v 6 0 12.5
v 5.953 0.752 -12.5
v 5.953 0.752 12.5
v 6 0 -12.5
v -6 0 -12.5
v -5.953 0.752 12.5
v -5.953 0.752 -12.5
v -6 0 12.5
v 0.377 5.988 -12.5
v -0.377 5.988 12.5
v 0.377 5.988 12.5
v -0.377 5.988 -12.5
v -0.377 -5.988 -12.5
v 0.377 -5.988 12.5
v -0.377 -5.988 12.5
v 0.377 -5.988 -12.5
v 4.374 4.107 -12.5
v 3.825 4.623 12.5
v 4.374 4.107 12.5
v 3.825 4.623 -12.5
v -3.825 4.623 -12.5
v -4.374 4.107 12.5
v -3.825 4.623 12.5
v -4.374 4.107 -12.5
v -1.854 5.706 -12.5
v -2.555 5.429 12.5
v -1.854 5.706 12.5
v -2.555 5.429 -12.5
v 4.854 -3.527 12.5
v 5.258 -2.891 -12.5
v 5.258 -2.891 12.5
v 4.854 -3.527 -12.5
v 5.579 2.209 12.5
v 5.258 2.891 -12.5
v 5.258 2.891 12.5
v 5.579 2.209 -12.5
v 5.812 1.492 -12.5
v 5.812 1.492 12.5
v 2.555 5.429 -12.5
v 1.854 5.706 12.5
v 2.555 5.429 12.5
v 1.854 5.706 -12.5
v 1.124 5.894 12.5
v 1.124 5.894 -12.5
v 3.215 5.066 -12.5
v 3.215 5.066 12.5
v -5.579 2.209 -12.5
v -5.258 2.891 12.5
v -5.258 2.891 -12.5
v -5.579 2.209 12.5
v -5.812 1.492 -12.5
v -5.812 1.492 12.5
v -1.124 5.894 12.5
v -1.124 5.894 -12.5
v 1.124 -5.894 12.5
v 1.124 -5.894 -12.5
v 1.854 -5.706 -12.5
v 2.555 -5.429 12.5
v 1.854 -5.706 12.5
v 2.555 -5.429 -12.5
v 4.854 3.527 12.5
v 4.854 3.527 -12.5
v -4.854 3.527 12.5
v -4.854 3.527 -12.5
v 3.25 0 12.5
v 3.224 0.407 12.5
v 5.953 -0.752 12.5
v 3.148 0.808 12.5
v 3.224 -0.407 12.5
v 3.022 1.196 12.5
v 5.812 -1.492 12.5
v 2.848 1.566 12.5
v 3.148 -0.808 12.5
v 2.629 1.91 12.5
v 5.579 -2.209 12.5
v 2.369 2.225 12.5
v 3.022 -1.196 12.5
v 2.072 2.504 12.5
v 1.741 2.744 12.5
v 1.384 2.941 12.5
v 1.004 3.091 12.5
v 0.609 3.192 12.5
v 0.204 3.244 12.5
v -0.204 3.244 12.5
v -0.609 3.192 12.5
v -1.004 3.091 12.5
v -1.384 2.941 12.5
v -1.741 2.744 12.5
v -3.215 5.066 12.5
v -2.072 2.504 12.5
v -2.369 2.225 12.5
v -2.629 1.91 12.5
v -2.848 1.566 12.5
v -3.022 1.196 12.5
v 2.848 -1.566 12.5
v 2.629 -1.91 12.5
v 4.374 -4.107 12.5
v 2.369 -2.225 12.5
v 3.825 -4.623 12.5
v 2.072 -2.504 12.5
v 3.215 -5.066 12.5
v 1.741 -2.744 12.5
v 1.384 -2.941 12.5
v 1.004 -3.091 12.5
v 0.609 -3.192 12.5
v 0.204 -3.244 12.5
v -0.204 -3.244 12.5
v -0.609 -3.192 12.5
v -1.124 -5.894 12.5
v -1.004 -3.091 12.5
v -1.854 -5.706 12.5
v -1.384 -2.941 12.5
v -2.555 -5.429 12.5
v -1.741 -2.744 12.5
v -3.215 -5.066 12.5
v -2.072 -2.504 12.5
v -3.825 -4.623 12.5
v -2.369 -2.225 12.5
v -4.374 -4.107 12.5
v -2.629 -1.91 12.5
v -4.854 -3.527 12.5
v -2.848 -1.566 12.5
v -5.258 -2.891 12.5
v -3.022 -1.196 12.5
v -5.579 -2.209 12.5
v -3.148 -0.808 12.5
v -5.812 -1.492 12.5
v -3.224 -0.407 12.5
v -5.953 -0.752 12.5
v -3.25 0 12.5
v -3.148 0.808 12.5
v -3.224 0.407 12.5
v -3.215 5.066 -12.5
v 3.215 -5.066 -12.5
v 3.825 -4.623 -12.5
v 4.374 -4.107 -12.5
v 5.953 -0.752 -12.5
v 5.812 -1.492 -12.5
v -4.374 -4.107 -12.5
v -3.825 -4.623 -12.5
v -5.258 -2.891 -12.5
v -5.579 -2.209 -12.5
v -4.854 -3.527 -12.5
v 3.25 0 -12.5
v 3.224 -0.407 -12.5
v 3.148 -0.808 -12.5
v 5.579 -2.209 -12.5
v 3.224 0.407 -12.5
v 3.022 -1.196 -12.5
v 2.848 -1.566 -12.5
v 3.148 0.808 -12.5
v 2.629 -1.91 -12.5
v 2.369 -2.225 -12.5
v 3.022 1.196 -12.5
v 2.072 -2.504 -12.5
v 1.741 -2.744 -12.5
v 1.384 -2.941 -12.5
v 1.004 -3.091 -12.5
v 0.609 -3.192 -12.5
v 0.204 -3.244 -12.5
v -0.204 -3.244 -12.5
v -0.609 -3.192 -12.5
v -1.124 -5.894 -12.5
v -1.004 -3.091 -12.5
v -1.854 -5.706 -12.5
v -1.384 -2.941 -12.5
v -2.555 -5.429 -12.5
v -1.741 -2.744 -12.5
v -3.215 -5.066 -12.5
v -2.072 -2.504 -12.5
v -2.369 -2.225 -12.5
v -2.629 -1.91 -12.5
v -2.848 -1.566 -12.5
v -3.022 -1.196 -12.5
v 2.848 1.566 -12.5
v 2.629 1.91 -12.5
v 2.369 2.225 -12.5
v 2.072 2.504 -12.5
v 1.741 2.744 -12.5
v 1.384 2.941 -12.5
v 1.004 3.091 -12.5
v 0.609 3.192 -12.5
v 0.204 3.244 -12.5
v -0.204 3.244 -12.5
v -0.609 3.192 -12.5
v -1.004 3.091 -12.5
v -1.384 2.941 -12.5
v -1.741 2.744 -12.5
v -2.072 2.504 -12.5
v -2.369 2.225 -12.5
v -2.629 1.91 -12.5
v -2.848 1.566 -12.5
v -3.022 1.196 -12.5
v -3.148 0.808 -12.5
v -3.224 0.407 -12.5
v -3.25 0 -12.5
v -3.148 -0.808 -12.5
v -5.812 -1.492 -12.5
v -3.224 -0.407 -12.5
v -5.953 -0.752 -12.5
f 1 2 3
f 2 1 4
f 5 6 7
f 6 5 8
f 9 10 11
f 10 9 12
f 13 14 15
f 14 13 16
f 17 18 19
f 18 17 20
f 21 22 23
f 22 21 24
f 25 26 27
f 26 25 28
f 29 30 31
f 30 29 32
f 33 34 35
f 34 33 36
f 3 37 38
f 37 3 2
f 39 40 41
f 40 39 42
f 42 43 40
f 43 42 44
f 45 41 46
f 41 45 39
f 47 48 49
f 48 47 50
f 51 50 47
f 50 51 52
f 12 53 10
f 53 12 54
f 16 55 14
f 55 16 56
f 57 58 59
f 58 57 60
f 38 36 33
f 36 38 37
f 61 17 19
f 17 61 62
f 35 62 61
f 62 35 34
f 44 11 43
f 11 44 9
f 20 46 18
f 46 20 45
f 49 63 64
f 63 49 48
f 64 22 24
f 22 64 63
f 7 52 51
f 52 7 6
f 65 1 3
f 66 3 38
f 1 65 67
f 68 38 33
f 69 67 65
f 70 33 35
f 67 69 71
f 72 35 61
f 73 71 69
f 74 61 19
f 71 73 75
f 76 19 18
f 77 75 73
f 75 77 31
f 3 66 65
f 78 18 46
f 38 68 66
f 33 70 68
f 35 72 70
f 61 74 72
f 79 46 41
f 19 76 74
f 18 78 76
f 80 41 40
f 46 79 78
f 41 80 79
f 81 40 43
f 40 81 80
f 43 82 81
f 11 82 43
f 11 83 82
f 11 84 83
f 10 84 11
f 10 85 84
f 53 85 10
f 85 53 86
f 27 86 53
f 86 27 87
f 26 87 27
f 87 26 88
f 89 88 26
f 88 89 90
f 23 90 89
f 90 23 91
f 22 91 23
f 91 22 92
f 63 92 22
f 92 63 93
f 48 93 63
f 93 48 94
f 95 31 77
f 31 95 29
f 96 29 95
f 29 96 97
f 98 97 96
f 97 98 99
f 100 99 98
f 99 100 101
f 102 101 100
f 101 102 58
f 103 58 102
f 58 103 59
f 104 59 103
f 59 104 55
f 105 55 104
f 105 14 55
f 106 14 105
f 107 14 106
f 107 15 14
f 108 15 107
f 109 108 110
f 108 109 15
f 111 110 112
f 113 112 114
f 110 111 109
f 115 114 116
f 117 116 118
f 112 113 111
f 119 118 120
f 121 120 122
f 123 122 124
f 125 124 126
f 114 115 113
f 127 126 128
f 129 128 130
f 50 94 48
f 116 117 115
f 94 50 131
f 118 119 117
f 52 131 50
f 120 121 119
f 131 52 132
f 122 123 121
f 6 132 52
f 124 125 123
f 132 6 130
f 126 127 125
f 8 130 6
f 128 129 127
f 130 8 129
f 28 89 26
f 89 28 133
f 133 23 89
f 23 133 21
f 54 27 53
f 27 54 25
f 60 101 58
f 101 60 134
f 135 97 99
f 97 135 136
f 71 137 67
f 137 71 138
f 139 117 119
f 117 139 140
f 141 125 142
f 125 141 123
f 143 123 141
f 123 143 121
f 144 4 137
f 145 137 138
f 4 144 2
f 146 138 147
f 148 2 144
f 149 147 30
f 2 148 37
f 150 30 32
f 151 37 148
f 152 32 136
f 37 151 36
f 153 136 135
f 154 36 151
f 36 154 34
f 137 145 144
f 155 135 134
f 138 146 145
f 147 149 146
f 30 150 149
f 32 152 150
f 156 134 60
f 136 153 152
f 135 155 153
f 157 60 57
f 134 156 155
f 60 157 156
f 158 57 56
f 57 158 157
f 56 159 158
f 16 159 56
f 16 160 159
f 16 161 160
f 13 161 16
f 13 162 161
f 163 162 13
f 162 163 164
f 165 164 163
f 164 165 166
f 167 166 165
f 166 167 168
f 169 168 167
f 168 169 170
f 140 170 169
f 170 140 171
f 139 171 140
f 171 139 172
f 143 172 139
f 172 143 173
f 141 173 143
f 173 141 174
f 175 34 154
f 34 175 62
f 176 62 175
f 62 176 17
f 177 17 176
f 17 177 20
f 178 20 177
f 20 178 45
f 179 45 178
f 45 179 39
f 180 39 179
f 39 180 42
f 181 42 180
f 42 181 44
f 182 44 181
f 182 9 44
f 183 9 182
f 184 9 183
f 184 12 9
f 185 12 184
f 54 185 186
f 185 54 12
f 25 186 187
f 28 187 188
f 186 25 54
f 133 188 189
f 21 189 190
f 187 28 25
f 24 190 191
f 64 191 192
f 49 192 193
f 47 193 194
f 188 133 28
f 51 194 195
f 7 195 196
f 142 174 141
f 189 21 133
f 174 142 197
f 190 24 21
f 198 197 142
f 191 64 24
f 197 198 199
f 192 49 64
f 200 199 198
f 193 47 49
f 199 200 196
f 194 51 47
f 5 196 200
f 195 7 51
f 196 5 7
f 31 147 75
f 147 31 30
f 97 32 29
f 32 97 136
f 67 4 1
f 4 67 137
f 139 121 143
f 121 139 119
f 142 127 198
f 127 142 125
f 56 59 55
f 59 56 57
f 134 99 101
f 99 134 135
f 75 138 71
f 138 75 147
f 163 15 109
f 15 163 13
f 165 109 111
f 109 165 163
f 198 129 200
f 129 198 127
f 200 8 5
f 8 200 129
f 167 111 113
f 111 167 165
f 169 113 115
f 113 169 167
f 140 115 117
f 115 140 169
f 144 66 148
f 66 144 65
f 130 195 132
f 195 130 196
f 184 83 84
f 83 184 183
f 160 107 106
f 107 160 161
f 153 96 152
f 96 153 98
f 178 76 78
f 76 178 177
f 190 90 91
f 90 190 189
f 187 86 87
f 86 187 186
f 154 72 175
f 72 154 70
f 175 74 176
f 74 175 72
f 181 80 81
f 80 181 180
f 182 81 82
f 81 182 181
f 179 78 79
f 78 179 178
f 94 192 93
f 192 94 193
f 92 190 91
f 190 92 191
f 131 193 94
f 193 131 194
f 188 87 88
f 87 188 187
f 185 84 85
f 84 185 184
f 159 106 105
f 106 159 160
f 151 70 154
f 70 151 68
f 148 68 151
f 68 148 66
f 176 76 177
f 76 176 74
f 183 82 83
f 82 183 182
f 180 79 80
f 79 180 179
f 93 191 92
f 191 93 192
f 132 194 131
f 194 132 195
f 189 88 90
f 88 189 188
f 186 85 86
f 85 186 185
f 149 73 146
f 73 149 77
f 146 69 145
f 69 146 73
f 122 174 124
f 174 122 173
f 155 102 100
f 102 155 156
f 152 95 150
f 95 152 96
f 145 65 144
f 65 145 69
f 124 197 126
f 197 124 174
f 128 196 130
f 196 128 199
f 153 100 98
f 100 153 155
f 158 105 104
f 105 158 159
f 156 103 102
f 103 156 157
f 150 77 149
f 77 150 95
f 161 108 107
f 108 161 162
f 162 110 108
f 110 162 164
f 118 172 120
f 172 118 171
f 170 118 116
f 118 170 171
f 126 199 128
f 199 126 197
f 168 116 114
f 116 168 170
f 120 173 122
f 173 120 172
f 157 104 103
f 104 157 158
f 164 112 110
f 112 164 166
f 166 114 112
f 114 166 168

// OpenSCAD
$fn = 50;


difference() {
	union() {
		translate(v = [0, 0, -12.5000000000]) {
			cylinder(h = 25, r = 6.0000000000);
		}
	}
	union() {
		translate(v = [0, 0, -100.0000000000]) {
			cylinder(h = 200, r = 3.2500000000);
		}
	}
}
